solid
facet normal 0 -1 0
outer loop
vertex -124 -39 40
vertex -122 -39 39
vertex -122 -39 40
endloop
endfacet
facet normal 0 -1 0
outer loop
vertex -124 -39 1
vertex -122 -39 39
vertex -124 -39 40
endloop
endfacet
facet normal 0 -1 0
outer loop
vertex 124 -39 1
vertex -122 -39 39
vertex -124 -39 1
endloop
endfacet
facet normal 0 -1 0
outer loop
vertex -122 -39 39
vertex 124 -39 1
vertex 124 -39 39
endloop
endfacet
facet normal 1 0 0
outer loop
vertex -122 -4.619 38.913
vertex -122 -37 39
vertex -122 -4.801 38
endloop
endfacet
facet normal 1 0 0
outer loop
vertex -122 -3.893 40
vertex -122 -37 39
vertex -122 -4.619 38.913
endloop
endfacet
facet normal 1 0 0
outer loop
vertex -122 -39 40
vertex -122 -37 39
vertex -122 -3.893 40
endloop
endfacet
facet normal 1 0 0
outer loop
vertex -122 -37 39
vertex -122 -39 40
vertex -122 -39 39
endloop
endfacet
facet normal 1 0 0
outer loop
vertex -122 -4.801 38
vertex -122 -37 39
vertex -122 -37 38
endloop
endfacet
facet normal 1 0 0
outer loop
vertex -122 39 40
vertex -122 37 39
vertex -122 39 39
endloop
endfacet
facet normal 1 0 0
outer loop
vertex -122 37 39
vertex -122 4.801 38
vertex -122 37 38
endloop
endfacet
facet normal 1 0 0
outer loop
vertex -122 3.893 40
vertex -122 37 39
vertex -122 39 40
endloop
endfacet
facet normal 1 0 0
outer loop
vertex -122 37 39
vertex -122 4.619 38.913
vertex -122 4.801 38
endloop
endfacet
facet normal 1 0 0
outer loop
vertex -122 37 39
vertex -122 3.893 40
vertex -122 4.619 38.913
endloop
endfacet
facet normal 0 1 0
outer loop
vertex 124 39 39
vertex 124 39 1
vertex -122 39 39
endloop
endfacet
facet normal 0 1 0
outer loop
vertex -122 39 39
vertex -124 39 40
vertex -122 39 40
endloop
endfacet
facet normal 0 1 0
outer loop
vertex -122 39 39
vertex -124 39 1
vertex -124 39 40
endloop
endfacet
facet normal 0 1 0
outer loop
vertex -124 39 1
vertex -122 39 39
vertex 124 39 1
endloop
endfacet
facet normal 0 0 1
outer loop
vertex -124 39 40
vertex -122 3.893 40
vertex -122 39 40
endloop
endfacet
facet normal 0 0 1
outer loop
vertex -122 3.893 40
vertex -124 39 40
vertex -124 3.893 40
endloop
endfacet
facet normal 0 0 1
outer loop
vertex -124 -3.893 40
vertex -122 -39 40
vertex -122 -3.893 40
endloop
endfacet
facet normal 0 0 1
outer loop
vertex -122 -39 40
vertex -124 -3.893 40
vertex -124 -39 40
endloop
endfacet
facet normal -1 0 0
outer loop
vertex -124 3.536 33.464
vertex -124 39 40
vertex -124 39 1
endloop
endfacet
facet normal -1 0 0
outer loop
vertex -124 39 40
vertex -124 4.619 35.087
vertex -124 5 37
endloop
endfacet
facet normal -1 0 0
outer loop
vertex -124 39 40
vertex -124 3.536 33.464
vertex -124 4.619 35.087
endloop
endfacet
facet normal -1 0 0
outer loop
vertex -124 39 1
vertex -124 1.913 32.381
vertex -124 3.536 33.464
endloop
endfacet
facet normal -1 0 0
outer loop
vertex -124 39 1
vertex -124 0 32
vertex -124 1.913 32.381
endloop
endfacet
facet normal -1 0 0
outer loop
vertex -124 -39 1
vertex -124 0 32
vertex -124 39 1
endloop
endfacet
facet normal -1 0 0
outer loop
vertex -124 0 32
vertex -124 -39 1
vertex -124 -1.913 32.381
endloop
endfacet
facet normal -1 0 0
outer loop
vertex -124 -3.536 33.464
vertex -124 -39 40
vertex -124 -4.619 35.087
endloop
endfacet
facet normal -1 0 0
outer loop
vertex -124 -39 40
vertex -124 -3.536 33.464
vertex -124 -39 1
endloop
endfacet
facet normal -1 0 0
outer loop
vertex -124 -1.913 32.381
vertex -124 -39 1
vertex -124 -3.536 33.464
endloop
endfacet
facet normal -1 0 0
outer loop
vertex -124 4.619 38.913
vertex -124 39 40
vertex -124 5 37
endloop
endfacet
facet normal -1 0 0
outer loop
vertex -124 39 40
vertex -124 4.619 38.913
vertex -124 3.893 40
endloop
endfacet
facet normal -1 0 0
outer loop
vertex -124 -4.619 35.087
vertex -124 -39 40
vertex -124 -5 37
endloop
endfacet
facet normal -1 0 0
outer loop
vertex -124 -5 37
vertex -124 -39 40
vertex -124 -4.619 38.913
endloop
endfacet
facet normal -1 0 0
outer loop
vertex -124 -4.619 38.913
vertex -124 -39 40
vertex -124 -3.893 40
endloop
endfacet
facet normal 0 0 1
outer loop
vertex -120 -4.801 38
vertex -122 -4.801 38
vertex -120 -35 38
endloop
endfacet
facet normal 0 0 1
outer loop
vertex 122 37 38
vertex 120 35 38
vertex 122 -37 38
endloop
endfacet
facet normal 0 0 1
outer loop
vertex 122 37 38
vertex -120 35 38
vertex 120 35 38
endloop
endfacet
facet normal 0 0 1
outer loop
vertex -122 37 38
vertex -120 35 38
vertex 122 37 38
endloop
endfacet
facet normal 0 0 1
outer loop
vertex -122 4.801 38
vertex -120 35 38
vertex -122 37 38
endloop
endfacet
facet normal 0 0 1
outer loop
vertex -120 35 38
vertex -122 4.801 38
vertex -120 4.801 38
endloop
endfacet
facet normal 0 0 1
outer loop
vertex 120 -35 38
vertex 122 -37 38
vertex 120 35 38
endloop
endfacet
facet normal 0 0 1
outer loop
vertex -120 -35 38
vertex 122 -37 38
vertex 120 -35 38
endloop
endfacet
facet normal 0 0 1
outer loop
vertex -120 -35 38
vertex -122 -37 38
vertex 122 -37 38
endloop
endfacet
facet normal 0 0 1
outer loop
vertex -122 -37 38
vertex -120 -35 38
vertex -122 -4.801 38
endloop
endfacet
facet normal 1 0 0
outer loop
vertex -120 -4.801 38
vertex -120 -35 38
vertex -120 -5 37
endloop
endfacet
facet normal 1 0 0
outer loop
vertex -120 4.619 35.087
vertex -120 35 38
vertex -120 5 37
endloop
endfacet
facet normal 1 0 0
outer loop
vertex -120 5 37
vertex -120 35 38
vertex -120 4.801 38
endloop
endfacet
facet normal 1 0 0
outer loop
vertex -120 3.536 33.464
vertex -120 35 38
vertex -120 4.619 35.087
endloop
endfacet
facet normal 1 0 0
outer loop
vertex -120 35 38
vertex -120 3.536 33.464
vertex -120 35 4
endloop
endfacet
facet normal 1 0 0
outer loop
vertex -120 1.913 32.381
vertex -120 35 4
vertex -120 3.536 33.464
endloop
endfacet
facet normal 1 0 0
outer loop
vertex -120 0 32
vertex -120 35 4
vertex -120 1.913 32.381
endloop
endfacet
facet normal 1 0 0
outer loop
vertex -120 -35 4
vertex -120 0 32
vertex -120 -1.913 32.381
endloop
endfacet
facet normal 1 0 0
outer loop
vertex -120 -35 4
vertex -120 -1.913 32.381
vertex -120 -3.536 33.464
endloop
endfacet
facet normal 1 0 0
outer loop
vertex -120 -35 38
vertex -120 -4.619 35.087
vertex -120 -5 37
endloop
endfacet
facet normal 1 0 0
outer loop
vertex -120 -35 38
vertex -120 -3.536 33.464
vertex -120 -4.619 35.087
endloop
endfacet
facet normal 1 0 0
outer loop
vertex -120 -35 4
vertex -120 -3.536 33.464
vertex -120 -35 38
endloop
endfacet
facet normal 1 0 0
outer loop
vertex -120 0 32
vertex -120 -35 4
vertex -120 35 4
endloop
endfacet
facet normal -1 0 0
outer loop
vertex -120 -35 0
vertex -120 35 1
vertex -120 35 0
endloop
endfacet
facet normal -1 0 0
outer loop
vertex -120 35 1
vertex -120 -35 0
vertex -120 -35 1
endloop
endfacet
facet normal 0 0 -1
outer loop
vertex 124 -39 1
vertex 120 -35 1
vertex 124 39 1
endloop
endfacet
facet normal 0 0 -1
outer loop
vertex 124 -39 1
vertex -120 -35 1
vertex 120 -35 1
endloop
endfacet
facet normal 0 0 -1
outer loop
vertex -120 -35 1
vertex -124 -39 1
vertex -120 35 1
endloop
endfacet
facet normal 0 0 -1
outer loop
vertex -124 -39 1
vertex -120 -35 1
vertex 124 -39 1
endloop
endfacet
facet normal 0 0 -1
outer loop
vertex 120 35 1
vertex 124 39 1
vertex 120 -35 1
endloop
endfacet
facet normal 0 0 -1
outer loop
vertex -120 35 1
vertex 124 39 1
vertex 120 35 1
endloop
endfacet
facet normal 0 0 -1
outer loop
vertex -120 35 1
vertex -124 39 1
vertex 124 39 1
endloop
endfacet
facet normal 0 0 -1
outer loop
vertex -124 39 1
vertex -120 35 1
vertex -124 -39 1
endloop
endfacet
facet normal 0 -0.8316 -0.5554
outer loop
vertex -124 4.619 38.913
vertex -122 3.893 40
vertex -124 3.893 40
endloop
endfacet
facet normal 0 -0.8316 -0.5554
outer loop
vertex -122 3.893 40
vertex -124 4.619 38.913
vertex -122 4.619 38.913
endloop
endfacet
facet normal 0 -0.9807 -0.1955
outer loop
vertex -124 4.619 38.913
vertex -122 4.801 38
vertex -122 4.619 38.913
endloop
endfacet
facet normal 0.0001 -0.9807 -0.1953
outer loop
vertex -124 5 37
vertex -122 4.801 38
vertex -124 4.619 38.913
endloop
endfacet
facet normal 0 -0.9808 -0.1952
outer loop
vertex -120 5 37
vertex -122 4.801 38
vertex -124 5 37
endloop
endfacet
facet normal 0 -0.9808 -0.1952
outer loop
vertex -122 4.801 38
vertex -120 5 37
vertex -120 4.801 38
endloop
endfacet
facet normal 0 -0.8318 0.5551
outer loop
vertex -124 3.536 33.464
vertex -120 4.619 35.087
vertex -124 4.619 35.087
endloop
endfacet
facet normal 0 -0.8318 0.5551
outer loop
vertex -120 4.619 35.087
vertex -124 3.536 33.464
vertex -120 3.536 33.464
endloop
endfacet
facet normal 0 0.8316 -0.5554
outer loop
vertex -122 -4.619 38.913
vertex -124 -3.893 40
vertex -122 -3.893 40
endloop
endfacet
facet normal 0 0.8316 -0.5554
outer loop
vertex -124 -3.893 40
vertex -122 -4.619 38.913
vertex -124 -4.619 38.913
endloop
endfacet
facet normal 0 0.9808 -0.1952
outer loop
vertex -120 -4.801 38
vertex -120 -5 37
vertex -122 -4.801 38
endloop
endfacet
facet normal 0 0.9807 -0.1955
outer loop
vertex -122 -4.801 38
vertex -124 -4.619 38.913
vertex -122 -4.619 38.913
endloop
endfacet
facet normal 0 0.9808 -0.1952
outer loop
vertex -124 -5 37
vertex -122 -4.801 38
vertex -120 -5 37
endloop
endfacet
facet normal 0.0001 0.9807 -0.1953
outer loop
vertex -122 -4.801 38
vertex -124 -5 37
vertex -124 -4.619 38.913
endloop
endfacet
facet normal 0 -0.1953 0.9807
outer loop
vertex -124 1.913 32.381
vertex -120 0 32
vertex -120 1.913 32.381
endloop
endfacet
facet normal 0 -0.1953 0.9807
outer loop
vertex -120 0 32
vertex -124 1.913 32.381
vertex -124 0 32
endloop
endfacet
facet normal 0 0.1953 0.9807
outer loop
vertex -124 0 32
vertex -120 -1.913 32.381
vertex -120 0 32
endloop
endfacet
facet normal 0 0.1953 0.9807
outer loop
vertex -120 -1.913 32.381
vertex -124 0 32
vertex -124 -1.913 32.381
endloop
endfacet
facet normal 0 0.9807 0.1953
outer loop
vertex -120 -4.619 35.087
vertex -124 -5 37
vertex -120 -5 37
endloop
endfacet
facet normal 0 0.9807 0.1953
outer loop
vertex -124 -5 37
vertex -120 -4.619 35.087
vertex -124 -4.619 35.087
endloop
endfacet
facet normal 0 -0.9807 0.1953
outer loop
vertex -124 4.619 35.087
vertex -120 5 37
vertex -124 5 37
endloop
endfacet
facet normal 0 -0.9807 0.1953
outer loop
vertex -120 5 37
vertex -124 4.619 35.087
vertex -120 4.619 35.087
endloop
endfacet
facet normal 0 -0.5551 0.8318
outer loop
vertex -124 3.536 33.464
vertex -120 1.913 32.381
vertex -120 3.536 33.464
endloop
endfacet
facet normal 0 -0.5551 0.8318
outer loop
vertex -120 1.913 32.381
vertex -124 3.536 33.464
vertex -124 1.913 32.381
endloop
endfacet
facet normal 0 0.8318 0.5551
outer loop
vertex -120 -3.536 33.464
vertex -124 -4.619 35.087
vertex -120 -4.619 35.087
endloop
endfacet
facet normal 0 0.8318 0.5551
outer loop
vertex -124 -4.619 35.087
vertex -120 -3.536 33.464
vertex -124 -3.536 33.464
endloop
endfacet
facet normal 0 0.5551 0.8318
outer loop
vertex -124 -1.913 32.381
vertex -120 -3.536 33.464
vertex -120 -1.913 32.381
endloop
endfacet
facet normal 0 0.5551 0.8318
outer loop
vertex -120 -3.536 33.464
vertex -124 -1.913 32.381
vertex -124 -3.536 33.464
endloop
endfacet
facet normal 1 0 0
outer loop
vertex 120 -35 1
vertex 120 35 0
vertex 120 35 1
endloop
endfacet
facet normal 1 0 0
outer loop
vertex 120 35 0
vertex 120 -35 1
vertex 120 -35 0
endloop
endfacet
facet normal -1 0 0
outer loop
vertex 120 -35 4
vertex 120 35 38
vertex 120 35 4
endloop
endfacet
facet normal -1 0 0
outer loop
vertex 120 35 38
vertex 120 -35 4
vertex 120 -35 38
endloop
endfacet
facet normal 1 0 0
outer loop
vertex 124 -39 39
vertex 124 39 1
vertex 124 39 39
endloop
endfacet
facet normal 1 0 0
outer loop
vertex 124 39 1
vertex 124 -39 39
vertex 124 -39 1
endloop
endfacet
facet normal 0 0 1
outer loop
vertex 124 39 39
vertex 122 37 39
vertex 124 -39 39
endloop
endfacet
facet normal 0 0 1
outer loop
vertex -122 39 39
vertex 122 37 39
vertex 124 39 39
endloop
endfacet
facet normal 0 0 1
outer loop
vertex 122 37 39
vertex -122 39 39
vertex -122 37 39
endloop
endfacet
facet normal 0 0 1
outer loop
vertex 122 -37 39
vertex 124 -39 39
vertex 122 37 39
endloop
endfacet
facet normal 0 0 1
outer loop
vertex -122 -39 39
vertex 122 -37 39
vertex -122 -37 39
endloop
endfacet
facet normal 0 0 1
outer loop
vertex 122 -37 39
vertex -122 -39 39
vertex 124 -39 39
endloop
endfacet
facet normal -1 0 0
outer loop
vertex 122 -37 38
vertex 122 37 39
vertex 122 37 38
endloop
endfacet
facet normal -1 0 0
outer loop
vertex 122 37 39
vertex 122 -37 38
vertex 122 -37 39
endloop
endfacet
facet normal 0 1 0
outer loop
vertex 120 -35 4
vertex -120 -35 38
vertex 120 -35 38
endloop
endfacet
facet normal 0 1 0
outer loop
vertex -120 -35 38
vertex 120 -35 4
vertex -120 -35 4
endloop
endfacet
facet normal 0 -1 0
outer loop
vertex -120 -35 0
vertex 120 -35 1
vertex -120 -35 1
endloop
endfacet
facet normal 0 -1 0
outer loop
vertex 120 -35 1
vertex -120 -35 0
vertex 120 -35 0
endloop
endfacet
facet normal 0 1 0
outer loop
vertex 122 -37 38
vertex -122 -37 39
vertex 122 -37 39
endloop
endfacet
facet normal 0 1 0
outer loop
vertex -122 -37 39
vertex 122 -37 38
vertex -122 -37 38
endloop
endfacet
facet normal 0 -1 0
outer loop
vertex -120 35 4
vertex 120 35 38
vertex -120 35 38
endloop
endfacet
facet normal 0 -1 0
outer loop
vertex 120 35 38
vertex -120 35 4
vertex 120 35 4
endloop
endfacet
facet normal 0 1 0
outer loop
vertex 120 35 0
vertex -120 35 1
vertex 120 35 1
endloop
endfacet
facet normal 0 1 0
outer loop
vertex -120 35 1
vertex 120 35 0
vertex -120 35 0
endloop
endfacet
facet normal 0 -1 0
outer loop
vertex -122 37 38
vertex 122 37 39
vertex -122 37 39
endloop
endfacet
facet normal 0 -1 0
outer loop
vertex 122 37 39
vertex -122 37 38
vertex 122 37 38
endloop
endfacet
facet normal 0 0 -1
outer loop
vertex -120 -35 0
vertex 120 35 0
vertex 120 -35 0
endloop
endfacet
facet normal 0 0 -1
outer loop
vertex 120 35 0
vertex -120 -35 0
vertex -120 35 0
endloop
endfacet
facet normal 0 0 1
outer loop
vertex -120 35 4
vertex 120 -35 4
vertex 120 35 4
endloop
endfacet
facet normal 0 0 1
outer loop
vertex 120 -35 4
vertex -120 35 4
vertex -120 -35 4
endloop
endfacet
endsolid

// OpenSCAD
// OpenSCAD for the top of a box to hold the power supplies
//          110V 60hz to 12V conversion for Bert
//          Origin = center, bottom of top plate
//          Orientation is upside down

height    = 35;        // Inside height (1/2 high)
length    =240;        // Inside length
thickness =  4;        // Wall and bottom thickness
width     = 70;        // Inside width

// Top plate. 
// x = length
// y = width
module base(x,y) {
    $fn=100;
    linear_extrude(thickness,center=true,convexity=10) {
       square([x,y],center=true); 
    }
}

module end(y,z) {
   linear_extrude(thickness,center=true,convexity=10) {
       square([y,z],center=true); 
    } 
}
module side(x,z) {
   linear_extrude(thickness,center=true,convexity=10) {
       square([x,z],center=true); 
    } 
}
// Half circle opening
module dc_wire_opening(z) {
    wr  = 5;    // Washer radius for 12V wires
    translate([0,z/2,0])
    cylinder(thickness+1,wr,wr,true);
}
// Material to be added to edge so cover fits. Outside edge.
module rim(x) {
    z = thickness/2;
    linear_extrude(height=x,center=true,convexity=10) {
        square([z,z],center=true); 
    }
}
  
// -------- Final Assembly --------
module final_assembly(x,y,z) {
    // Bottom
    color("gray")
    translate([0,0,thickness/2])
    base(x,y);
    
    // DC End
    rotate([90,0,90])
    translate([0,(z+thickness)/2,-(x+thickness)/2])
    difference() {
        union() {
            color("red")
            rotate([0,90,0])
            translate([thickness/4,z/2+thickness/2,0])
            rim(y+2*thickness);
            color("lightgreen")
            end(y+2*thickness,z+thickness/2);
        }
        dc_wire_opening(z);
    }
    
    // AC End
    rotate([90,0,90])
    translate([0,(z+thickness)/2,(x+thickness)/2])
    union() {
        color("green")
        end(y+2*thickness,z+thickness/2);
        rotate([0,90,0])
        translate([-thickness/4,z/2+thickness/4,0])
        color("red")
        rim(y+2*thickness);
    }
    
    // Side
    rotate([90,0,0])
    translate([0,(z+thickness)/2,(y+thickness)/2])
    union() {
        color("green")
        side(x,z+thickness/2);
        color("red")
        rotate([0,90,0])
        translate([-thickness/4,z/2+thickness/4,0])
        rim(x+thickness);
    }
    
    // Side
    rotate([90,0,0])
    translate([0,(z+thickness)/2,-(y+thickness)/2])
    union() {
        color("green")
        side(x,z+thickness/2);
        color("red")
        rotate([0,90,0])
        translate([thickness/4,z/2+thickness/4,0])
        rim(x+thickness);
    }
    
}

final_assembly(length,width,height);
